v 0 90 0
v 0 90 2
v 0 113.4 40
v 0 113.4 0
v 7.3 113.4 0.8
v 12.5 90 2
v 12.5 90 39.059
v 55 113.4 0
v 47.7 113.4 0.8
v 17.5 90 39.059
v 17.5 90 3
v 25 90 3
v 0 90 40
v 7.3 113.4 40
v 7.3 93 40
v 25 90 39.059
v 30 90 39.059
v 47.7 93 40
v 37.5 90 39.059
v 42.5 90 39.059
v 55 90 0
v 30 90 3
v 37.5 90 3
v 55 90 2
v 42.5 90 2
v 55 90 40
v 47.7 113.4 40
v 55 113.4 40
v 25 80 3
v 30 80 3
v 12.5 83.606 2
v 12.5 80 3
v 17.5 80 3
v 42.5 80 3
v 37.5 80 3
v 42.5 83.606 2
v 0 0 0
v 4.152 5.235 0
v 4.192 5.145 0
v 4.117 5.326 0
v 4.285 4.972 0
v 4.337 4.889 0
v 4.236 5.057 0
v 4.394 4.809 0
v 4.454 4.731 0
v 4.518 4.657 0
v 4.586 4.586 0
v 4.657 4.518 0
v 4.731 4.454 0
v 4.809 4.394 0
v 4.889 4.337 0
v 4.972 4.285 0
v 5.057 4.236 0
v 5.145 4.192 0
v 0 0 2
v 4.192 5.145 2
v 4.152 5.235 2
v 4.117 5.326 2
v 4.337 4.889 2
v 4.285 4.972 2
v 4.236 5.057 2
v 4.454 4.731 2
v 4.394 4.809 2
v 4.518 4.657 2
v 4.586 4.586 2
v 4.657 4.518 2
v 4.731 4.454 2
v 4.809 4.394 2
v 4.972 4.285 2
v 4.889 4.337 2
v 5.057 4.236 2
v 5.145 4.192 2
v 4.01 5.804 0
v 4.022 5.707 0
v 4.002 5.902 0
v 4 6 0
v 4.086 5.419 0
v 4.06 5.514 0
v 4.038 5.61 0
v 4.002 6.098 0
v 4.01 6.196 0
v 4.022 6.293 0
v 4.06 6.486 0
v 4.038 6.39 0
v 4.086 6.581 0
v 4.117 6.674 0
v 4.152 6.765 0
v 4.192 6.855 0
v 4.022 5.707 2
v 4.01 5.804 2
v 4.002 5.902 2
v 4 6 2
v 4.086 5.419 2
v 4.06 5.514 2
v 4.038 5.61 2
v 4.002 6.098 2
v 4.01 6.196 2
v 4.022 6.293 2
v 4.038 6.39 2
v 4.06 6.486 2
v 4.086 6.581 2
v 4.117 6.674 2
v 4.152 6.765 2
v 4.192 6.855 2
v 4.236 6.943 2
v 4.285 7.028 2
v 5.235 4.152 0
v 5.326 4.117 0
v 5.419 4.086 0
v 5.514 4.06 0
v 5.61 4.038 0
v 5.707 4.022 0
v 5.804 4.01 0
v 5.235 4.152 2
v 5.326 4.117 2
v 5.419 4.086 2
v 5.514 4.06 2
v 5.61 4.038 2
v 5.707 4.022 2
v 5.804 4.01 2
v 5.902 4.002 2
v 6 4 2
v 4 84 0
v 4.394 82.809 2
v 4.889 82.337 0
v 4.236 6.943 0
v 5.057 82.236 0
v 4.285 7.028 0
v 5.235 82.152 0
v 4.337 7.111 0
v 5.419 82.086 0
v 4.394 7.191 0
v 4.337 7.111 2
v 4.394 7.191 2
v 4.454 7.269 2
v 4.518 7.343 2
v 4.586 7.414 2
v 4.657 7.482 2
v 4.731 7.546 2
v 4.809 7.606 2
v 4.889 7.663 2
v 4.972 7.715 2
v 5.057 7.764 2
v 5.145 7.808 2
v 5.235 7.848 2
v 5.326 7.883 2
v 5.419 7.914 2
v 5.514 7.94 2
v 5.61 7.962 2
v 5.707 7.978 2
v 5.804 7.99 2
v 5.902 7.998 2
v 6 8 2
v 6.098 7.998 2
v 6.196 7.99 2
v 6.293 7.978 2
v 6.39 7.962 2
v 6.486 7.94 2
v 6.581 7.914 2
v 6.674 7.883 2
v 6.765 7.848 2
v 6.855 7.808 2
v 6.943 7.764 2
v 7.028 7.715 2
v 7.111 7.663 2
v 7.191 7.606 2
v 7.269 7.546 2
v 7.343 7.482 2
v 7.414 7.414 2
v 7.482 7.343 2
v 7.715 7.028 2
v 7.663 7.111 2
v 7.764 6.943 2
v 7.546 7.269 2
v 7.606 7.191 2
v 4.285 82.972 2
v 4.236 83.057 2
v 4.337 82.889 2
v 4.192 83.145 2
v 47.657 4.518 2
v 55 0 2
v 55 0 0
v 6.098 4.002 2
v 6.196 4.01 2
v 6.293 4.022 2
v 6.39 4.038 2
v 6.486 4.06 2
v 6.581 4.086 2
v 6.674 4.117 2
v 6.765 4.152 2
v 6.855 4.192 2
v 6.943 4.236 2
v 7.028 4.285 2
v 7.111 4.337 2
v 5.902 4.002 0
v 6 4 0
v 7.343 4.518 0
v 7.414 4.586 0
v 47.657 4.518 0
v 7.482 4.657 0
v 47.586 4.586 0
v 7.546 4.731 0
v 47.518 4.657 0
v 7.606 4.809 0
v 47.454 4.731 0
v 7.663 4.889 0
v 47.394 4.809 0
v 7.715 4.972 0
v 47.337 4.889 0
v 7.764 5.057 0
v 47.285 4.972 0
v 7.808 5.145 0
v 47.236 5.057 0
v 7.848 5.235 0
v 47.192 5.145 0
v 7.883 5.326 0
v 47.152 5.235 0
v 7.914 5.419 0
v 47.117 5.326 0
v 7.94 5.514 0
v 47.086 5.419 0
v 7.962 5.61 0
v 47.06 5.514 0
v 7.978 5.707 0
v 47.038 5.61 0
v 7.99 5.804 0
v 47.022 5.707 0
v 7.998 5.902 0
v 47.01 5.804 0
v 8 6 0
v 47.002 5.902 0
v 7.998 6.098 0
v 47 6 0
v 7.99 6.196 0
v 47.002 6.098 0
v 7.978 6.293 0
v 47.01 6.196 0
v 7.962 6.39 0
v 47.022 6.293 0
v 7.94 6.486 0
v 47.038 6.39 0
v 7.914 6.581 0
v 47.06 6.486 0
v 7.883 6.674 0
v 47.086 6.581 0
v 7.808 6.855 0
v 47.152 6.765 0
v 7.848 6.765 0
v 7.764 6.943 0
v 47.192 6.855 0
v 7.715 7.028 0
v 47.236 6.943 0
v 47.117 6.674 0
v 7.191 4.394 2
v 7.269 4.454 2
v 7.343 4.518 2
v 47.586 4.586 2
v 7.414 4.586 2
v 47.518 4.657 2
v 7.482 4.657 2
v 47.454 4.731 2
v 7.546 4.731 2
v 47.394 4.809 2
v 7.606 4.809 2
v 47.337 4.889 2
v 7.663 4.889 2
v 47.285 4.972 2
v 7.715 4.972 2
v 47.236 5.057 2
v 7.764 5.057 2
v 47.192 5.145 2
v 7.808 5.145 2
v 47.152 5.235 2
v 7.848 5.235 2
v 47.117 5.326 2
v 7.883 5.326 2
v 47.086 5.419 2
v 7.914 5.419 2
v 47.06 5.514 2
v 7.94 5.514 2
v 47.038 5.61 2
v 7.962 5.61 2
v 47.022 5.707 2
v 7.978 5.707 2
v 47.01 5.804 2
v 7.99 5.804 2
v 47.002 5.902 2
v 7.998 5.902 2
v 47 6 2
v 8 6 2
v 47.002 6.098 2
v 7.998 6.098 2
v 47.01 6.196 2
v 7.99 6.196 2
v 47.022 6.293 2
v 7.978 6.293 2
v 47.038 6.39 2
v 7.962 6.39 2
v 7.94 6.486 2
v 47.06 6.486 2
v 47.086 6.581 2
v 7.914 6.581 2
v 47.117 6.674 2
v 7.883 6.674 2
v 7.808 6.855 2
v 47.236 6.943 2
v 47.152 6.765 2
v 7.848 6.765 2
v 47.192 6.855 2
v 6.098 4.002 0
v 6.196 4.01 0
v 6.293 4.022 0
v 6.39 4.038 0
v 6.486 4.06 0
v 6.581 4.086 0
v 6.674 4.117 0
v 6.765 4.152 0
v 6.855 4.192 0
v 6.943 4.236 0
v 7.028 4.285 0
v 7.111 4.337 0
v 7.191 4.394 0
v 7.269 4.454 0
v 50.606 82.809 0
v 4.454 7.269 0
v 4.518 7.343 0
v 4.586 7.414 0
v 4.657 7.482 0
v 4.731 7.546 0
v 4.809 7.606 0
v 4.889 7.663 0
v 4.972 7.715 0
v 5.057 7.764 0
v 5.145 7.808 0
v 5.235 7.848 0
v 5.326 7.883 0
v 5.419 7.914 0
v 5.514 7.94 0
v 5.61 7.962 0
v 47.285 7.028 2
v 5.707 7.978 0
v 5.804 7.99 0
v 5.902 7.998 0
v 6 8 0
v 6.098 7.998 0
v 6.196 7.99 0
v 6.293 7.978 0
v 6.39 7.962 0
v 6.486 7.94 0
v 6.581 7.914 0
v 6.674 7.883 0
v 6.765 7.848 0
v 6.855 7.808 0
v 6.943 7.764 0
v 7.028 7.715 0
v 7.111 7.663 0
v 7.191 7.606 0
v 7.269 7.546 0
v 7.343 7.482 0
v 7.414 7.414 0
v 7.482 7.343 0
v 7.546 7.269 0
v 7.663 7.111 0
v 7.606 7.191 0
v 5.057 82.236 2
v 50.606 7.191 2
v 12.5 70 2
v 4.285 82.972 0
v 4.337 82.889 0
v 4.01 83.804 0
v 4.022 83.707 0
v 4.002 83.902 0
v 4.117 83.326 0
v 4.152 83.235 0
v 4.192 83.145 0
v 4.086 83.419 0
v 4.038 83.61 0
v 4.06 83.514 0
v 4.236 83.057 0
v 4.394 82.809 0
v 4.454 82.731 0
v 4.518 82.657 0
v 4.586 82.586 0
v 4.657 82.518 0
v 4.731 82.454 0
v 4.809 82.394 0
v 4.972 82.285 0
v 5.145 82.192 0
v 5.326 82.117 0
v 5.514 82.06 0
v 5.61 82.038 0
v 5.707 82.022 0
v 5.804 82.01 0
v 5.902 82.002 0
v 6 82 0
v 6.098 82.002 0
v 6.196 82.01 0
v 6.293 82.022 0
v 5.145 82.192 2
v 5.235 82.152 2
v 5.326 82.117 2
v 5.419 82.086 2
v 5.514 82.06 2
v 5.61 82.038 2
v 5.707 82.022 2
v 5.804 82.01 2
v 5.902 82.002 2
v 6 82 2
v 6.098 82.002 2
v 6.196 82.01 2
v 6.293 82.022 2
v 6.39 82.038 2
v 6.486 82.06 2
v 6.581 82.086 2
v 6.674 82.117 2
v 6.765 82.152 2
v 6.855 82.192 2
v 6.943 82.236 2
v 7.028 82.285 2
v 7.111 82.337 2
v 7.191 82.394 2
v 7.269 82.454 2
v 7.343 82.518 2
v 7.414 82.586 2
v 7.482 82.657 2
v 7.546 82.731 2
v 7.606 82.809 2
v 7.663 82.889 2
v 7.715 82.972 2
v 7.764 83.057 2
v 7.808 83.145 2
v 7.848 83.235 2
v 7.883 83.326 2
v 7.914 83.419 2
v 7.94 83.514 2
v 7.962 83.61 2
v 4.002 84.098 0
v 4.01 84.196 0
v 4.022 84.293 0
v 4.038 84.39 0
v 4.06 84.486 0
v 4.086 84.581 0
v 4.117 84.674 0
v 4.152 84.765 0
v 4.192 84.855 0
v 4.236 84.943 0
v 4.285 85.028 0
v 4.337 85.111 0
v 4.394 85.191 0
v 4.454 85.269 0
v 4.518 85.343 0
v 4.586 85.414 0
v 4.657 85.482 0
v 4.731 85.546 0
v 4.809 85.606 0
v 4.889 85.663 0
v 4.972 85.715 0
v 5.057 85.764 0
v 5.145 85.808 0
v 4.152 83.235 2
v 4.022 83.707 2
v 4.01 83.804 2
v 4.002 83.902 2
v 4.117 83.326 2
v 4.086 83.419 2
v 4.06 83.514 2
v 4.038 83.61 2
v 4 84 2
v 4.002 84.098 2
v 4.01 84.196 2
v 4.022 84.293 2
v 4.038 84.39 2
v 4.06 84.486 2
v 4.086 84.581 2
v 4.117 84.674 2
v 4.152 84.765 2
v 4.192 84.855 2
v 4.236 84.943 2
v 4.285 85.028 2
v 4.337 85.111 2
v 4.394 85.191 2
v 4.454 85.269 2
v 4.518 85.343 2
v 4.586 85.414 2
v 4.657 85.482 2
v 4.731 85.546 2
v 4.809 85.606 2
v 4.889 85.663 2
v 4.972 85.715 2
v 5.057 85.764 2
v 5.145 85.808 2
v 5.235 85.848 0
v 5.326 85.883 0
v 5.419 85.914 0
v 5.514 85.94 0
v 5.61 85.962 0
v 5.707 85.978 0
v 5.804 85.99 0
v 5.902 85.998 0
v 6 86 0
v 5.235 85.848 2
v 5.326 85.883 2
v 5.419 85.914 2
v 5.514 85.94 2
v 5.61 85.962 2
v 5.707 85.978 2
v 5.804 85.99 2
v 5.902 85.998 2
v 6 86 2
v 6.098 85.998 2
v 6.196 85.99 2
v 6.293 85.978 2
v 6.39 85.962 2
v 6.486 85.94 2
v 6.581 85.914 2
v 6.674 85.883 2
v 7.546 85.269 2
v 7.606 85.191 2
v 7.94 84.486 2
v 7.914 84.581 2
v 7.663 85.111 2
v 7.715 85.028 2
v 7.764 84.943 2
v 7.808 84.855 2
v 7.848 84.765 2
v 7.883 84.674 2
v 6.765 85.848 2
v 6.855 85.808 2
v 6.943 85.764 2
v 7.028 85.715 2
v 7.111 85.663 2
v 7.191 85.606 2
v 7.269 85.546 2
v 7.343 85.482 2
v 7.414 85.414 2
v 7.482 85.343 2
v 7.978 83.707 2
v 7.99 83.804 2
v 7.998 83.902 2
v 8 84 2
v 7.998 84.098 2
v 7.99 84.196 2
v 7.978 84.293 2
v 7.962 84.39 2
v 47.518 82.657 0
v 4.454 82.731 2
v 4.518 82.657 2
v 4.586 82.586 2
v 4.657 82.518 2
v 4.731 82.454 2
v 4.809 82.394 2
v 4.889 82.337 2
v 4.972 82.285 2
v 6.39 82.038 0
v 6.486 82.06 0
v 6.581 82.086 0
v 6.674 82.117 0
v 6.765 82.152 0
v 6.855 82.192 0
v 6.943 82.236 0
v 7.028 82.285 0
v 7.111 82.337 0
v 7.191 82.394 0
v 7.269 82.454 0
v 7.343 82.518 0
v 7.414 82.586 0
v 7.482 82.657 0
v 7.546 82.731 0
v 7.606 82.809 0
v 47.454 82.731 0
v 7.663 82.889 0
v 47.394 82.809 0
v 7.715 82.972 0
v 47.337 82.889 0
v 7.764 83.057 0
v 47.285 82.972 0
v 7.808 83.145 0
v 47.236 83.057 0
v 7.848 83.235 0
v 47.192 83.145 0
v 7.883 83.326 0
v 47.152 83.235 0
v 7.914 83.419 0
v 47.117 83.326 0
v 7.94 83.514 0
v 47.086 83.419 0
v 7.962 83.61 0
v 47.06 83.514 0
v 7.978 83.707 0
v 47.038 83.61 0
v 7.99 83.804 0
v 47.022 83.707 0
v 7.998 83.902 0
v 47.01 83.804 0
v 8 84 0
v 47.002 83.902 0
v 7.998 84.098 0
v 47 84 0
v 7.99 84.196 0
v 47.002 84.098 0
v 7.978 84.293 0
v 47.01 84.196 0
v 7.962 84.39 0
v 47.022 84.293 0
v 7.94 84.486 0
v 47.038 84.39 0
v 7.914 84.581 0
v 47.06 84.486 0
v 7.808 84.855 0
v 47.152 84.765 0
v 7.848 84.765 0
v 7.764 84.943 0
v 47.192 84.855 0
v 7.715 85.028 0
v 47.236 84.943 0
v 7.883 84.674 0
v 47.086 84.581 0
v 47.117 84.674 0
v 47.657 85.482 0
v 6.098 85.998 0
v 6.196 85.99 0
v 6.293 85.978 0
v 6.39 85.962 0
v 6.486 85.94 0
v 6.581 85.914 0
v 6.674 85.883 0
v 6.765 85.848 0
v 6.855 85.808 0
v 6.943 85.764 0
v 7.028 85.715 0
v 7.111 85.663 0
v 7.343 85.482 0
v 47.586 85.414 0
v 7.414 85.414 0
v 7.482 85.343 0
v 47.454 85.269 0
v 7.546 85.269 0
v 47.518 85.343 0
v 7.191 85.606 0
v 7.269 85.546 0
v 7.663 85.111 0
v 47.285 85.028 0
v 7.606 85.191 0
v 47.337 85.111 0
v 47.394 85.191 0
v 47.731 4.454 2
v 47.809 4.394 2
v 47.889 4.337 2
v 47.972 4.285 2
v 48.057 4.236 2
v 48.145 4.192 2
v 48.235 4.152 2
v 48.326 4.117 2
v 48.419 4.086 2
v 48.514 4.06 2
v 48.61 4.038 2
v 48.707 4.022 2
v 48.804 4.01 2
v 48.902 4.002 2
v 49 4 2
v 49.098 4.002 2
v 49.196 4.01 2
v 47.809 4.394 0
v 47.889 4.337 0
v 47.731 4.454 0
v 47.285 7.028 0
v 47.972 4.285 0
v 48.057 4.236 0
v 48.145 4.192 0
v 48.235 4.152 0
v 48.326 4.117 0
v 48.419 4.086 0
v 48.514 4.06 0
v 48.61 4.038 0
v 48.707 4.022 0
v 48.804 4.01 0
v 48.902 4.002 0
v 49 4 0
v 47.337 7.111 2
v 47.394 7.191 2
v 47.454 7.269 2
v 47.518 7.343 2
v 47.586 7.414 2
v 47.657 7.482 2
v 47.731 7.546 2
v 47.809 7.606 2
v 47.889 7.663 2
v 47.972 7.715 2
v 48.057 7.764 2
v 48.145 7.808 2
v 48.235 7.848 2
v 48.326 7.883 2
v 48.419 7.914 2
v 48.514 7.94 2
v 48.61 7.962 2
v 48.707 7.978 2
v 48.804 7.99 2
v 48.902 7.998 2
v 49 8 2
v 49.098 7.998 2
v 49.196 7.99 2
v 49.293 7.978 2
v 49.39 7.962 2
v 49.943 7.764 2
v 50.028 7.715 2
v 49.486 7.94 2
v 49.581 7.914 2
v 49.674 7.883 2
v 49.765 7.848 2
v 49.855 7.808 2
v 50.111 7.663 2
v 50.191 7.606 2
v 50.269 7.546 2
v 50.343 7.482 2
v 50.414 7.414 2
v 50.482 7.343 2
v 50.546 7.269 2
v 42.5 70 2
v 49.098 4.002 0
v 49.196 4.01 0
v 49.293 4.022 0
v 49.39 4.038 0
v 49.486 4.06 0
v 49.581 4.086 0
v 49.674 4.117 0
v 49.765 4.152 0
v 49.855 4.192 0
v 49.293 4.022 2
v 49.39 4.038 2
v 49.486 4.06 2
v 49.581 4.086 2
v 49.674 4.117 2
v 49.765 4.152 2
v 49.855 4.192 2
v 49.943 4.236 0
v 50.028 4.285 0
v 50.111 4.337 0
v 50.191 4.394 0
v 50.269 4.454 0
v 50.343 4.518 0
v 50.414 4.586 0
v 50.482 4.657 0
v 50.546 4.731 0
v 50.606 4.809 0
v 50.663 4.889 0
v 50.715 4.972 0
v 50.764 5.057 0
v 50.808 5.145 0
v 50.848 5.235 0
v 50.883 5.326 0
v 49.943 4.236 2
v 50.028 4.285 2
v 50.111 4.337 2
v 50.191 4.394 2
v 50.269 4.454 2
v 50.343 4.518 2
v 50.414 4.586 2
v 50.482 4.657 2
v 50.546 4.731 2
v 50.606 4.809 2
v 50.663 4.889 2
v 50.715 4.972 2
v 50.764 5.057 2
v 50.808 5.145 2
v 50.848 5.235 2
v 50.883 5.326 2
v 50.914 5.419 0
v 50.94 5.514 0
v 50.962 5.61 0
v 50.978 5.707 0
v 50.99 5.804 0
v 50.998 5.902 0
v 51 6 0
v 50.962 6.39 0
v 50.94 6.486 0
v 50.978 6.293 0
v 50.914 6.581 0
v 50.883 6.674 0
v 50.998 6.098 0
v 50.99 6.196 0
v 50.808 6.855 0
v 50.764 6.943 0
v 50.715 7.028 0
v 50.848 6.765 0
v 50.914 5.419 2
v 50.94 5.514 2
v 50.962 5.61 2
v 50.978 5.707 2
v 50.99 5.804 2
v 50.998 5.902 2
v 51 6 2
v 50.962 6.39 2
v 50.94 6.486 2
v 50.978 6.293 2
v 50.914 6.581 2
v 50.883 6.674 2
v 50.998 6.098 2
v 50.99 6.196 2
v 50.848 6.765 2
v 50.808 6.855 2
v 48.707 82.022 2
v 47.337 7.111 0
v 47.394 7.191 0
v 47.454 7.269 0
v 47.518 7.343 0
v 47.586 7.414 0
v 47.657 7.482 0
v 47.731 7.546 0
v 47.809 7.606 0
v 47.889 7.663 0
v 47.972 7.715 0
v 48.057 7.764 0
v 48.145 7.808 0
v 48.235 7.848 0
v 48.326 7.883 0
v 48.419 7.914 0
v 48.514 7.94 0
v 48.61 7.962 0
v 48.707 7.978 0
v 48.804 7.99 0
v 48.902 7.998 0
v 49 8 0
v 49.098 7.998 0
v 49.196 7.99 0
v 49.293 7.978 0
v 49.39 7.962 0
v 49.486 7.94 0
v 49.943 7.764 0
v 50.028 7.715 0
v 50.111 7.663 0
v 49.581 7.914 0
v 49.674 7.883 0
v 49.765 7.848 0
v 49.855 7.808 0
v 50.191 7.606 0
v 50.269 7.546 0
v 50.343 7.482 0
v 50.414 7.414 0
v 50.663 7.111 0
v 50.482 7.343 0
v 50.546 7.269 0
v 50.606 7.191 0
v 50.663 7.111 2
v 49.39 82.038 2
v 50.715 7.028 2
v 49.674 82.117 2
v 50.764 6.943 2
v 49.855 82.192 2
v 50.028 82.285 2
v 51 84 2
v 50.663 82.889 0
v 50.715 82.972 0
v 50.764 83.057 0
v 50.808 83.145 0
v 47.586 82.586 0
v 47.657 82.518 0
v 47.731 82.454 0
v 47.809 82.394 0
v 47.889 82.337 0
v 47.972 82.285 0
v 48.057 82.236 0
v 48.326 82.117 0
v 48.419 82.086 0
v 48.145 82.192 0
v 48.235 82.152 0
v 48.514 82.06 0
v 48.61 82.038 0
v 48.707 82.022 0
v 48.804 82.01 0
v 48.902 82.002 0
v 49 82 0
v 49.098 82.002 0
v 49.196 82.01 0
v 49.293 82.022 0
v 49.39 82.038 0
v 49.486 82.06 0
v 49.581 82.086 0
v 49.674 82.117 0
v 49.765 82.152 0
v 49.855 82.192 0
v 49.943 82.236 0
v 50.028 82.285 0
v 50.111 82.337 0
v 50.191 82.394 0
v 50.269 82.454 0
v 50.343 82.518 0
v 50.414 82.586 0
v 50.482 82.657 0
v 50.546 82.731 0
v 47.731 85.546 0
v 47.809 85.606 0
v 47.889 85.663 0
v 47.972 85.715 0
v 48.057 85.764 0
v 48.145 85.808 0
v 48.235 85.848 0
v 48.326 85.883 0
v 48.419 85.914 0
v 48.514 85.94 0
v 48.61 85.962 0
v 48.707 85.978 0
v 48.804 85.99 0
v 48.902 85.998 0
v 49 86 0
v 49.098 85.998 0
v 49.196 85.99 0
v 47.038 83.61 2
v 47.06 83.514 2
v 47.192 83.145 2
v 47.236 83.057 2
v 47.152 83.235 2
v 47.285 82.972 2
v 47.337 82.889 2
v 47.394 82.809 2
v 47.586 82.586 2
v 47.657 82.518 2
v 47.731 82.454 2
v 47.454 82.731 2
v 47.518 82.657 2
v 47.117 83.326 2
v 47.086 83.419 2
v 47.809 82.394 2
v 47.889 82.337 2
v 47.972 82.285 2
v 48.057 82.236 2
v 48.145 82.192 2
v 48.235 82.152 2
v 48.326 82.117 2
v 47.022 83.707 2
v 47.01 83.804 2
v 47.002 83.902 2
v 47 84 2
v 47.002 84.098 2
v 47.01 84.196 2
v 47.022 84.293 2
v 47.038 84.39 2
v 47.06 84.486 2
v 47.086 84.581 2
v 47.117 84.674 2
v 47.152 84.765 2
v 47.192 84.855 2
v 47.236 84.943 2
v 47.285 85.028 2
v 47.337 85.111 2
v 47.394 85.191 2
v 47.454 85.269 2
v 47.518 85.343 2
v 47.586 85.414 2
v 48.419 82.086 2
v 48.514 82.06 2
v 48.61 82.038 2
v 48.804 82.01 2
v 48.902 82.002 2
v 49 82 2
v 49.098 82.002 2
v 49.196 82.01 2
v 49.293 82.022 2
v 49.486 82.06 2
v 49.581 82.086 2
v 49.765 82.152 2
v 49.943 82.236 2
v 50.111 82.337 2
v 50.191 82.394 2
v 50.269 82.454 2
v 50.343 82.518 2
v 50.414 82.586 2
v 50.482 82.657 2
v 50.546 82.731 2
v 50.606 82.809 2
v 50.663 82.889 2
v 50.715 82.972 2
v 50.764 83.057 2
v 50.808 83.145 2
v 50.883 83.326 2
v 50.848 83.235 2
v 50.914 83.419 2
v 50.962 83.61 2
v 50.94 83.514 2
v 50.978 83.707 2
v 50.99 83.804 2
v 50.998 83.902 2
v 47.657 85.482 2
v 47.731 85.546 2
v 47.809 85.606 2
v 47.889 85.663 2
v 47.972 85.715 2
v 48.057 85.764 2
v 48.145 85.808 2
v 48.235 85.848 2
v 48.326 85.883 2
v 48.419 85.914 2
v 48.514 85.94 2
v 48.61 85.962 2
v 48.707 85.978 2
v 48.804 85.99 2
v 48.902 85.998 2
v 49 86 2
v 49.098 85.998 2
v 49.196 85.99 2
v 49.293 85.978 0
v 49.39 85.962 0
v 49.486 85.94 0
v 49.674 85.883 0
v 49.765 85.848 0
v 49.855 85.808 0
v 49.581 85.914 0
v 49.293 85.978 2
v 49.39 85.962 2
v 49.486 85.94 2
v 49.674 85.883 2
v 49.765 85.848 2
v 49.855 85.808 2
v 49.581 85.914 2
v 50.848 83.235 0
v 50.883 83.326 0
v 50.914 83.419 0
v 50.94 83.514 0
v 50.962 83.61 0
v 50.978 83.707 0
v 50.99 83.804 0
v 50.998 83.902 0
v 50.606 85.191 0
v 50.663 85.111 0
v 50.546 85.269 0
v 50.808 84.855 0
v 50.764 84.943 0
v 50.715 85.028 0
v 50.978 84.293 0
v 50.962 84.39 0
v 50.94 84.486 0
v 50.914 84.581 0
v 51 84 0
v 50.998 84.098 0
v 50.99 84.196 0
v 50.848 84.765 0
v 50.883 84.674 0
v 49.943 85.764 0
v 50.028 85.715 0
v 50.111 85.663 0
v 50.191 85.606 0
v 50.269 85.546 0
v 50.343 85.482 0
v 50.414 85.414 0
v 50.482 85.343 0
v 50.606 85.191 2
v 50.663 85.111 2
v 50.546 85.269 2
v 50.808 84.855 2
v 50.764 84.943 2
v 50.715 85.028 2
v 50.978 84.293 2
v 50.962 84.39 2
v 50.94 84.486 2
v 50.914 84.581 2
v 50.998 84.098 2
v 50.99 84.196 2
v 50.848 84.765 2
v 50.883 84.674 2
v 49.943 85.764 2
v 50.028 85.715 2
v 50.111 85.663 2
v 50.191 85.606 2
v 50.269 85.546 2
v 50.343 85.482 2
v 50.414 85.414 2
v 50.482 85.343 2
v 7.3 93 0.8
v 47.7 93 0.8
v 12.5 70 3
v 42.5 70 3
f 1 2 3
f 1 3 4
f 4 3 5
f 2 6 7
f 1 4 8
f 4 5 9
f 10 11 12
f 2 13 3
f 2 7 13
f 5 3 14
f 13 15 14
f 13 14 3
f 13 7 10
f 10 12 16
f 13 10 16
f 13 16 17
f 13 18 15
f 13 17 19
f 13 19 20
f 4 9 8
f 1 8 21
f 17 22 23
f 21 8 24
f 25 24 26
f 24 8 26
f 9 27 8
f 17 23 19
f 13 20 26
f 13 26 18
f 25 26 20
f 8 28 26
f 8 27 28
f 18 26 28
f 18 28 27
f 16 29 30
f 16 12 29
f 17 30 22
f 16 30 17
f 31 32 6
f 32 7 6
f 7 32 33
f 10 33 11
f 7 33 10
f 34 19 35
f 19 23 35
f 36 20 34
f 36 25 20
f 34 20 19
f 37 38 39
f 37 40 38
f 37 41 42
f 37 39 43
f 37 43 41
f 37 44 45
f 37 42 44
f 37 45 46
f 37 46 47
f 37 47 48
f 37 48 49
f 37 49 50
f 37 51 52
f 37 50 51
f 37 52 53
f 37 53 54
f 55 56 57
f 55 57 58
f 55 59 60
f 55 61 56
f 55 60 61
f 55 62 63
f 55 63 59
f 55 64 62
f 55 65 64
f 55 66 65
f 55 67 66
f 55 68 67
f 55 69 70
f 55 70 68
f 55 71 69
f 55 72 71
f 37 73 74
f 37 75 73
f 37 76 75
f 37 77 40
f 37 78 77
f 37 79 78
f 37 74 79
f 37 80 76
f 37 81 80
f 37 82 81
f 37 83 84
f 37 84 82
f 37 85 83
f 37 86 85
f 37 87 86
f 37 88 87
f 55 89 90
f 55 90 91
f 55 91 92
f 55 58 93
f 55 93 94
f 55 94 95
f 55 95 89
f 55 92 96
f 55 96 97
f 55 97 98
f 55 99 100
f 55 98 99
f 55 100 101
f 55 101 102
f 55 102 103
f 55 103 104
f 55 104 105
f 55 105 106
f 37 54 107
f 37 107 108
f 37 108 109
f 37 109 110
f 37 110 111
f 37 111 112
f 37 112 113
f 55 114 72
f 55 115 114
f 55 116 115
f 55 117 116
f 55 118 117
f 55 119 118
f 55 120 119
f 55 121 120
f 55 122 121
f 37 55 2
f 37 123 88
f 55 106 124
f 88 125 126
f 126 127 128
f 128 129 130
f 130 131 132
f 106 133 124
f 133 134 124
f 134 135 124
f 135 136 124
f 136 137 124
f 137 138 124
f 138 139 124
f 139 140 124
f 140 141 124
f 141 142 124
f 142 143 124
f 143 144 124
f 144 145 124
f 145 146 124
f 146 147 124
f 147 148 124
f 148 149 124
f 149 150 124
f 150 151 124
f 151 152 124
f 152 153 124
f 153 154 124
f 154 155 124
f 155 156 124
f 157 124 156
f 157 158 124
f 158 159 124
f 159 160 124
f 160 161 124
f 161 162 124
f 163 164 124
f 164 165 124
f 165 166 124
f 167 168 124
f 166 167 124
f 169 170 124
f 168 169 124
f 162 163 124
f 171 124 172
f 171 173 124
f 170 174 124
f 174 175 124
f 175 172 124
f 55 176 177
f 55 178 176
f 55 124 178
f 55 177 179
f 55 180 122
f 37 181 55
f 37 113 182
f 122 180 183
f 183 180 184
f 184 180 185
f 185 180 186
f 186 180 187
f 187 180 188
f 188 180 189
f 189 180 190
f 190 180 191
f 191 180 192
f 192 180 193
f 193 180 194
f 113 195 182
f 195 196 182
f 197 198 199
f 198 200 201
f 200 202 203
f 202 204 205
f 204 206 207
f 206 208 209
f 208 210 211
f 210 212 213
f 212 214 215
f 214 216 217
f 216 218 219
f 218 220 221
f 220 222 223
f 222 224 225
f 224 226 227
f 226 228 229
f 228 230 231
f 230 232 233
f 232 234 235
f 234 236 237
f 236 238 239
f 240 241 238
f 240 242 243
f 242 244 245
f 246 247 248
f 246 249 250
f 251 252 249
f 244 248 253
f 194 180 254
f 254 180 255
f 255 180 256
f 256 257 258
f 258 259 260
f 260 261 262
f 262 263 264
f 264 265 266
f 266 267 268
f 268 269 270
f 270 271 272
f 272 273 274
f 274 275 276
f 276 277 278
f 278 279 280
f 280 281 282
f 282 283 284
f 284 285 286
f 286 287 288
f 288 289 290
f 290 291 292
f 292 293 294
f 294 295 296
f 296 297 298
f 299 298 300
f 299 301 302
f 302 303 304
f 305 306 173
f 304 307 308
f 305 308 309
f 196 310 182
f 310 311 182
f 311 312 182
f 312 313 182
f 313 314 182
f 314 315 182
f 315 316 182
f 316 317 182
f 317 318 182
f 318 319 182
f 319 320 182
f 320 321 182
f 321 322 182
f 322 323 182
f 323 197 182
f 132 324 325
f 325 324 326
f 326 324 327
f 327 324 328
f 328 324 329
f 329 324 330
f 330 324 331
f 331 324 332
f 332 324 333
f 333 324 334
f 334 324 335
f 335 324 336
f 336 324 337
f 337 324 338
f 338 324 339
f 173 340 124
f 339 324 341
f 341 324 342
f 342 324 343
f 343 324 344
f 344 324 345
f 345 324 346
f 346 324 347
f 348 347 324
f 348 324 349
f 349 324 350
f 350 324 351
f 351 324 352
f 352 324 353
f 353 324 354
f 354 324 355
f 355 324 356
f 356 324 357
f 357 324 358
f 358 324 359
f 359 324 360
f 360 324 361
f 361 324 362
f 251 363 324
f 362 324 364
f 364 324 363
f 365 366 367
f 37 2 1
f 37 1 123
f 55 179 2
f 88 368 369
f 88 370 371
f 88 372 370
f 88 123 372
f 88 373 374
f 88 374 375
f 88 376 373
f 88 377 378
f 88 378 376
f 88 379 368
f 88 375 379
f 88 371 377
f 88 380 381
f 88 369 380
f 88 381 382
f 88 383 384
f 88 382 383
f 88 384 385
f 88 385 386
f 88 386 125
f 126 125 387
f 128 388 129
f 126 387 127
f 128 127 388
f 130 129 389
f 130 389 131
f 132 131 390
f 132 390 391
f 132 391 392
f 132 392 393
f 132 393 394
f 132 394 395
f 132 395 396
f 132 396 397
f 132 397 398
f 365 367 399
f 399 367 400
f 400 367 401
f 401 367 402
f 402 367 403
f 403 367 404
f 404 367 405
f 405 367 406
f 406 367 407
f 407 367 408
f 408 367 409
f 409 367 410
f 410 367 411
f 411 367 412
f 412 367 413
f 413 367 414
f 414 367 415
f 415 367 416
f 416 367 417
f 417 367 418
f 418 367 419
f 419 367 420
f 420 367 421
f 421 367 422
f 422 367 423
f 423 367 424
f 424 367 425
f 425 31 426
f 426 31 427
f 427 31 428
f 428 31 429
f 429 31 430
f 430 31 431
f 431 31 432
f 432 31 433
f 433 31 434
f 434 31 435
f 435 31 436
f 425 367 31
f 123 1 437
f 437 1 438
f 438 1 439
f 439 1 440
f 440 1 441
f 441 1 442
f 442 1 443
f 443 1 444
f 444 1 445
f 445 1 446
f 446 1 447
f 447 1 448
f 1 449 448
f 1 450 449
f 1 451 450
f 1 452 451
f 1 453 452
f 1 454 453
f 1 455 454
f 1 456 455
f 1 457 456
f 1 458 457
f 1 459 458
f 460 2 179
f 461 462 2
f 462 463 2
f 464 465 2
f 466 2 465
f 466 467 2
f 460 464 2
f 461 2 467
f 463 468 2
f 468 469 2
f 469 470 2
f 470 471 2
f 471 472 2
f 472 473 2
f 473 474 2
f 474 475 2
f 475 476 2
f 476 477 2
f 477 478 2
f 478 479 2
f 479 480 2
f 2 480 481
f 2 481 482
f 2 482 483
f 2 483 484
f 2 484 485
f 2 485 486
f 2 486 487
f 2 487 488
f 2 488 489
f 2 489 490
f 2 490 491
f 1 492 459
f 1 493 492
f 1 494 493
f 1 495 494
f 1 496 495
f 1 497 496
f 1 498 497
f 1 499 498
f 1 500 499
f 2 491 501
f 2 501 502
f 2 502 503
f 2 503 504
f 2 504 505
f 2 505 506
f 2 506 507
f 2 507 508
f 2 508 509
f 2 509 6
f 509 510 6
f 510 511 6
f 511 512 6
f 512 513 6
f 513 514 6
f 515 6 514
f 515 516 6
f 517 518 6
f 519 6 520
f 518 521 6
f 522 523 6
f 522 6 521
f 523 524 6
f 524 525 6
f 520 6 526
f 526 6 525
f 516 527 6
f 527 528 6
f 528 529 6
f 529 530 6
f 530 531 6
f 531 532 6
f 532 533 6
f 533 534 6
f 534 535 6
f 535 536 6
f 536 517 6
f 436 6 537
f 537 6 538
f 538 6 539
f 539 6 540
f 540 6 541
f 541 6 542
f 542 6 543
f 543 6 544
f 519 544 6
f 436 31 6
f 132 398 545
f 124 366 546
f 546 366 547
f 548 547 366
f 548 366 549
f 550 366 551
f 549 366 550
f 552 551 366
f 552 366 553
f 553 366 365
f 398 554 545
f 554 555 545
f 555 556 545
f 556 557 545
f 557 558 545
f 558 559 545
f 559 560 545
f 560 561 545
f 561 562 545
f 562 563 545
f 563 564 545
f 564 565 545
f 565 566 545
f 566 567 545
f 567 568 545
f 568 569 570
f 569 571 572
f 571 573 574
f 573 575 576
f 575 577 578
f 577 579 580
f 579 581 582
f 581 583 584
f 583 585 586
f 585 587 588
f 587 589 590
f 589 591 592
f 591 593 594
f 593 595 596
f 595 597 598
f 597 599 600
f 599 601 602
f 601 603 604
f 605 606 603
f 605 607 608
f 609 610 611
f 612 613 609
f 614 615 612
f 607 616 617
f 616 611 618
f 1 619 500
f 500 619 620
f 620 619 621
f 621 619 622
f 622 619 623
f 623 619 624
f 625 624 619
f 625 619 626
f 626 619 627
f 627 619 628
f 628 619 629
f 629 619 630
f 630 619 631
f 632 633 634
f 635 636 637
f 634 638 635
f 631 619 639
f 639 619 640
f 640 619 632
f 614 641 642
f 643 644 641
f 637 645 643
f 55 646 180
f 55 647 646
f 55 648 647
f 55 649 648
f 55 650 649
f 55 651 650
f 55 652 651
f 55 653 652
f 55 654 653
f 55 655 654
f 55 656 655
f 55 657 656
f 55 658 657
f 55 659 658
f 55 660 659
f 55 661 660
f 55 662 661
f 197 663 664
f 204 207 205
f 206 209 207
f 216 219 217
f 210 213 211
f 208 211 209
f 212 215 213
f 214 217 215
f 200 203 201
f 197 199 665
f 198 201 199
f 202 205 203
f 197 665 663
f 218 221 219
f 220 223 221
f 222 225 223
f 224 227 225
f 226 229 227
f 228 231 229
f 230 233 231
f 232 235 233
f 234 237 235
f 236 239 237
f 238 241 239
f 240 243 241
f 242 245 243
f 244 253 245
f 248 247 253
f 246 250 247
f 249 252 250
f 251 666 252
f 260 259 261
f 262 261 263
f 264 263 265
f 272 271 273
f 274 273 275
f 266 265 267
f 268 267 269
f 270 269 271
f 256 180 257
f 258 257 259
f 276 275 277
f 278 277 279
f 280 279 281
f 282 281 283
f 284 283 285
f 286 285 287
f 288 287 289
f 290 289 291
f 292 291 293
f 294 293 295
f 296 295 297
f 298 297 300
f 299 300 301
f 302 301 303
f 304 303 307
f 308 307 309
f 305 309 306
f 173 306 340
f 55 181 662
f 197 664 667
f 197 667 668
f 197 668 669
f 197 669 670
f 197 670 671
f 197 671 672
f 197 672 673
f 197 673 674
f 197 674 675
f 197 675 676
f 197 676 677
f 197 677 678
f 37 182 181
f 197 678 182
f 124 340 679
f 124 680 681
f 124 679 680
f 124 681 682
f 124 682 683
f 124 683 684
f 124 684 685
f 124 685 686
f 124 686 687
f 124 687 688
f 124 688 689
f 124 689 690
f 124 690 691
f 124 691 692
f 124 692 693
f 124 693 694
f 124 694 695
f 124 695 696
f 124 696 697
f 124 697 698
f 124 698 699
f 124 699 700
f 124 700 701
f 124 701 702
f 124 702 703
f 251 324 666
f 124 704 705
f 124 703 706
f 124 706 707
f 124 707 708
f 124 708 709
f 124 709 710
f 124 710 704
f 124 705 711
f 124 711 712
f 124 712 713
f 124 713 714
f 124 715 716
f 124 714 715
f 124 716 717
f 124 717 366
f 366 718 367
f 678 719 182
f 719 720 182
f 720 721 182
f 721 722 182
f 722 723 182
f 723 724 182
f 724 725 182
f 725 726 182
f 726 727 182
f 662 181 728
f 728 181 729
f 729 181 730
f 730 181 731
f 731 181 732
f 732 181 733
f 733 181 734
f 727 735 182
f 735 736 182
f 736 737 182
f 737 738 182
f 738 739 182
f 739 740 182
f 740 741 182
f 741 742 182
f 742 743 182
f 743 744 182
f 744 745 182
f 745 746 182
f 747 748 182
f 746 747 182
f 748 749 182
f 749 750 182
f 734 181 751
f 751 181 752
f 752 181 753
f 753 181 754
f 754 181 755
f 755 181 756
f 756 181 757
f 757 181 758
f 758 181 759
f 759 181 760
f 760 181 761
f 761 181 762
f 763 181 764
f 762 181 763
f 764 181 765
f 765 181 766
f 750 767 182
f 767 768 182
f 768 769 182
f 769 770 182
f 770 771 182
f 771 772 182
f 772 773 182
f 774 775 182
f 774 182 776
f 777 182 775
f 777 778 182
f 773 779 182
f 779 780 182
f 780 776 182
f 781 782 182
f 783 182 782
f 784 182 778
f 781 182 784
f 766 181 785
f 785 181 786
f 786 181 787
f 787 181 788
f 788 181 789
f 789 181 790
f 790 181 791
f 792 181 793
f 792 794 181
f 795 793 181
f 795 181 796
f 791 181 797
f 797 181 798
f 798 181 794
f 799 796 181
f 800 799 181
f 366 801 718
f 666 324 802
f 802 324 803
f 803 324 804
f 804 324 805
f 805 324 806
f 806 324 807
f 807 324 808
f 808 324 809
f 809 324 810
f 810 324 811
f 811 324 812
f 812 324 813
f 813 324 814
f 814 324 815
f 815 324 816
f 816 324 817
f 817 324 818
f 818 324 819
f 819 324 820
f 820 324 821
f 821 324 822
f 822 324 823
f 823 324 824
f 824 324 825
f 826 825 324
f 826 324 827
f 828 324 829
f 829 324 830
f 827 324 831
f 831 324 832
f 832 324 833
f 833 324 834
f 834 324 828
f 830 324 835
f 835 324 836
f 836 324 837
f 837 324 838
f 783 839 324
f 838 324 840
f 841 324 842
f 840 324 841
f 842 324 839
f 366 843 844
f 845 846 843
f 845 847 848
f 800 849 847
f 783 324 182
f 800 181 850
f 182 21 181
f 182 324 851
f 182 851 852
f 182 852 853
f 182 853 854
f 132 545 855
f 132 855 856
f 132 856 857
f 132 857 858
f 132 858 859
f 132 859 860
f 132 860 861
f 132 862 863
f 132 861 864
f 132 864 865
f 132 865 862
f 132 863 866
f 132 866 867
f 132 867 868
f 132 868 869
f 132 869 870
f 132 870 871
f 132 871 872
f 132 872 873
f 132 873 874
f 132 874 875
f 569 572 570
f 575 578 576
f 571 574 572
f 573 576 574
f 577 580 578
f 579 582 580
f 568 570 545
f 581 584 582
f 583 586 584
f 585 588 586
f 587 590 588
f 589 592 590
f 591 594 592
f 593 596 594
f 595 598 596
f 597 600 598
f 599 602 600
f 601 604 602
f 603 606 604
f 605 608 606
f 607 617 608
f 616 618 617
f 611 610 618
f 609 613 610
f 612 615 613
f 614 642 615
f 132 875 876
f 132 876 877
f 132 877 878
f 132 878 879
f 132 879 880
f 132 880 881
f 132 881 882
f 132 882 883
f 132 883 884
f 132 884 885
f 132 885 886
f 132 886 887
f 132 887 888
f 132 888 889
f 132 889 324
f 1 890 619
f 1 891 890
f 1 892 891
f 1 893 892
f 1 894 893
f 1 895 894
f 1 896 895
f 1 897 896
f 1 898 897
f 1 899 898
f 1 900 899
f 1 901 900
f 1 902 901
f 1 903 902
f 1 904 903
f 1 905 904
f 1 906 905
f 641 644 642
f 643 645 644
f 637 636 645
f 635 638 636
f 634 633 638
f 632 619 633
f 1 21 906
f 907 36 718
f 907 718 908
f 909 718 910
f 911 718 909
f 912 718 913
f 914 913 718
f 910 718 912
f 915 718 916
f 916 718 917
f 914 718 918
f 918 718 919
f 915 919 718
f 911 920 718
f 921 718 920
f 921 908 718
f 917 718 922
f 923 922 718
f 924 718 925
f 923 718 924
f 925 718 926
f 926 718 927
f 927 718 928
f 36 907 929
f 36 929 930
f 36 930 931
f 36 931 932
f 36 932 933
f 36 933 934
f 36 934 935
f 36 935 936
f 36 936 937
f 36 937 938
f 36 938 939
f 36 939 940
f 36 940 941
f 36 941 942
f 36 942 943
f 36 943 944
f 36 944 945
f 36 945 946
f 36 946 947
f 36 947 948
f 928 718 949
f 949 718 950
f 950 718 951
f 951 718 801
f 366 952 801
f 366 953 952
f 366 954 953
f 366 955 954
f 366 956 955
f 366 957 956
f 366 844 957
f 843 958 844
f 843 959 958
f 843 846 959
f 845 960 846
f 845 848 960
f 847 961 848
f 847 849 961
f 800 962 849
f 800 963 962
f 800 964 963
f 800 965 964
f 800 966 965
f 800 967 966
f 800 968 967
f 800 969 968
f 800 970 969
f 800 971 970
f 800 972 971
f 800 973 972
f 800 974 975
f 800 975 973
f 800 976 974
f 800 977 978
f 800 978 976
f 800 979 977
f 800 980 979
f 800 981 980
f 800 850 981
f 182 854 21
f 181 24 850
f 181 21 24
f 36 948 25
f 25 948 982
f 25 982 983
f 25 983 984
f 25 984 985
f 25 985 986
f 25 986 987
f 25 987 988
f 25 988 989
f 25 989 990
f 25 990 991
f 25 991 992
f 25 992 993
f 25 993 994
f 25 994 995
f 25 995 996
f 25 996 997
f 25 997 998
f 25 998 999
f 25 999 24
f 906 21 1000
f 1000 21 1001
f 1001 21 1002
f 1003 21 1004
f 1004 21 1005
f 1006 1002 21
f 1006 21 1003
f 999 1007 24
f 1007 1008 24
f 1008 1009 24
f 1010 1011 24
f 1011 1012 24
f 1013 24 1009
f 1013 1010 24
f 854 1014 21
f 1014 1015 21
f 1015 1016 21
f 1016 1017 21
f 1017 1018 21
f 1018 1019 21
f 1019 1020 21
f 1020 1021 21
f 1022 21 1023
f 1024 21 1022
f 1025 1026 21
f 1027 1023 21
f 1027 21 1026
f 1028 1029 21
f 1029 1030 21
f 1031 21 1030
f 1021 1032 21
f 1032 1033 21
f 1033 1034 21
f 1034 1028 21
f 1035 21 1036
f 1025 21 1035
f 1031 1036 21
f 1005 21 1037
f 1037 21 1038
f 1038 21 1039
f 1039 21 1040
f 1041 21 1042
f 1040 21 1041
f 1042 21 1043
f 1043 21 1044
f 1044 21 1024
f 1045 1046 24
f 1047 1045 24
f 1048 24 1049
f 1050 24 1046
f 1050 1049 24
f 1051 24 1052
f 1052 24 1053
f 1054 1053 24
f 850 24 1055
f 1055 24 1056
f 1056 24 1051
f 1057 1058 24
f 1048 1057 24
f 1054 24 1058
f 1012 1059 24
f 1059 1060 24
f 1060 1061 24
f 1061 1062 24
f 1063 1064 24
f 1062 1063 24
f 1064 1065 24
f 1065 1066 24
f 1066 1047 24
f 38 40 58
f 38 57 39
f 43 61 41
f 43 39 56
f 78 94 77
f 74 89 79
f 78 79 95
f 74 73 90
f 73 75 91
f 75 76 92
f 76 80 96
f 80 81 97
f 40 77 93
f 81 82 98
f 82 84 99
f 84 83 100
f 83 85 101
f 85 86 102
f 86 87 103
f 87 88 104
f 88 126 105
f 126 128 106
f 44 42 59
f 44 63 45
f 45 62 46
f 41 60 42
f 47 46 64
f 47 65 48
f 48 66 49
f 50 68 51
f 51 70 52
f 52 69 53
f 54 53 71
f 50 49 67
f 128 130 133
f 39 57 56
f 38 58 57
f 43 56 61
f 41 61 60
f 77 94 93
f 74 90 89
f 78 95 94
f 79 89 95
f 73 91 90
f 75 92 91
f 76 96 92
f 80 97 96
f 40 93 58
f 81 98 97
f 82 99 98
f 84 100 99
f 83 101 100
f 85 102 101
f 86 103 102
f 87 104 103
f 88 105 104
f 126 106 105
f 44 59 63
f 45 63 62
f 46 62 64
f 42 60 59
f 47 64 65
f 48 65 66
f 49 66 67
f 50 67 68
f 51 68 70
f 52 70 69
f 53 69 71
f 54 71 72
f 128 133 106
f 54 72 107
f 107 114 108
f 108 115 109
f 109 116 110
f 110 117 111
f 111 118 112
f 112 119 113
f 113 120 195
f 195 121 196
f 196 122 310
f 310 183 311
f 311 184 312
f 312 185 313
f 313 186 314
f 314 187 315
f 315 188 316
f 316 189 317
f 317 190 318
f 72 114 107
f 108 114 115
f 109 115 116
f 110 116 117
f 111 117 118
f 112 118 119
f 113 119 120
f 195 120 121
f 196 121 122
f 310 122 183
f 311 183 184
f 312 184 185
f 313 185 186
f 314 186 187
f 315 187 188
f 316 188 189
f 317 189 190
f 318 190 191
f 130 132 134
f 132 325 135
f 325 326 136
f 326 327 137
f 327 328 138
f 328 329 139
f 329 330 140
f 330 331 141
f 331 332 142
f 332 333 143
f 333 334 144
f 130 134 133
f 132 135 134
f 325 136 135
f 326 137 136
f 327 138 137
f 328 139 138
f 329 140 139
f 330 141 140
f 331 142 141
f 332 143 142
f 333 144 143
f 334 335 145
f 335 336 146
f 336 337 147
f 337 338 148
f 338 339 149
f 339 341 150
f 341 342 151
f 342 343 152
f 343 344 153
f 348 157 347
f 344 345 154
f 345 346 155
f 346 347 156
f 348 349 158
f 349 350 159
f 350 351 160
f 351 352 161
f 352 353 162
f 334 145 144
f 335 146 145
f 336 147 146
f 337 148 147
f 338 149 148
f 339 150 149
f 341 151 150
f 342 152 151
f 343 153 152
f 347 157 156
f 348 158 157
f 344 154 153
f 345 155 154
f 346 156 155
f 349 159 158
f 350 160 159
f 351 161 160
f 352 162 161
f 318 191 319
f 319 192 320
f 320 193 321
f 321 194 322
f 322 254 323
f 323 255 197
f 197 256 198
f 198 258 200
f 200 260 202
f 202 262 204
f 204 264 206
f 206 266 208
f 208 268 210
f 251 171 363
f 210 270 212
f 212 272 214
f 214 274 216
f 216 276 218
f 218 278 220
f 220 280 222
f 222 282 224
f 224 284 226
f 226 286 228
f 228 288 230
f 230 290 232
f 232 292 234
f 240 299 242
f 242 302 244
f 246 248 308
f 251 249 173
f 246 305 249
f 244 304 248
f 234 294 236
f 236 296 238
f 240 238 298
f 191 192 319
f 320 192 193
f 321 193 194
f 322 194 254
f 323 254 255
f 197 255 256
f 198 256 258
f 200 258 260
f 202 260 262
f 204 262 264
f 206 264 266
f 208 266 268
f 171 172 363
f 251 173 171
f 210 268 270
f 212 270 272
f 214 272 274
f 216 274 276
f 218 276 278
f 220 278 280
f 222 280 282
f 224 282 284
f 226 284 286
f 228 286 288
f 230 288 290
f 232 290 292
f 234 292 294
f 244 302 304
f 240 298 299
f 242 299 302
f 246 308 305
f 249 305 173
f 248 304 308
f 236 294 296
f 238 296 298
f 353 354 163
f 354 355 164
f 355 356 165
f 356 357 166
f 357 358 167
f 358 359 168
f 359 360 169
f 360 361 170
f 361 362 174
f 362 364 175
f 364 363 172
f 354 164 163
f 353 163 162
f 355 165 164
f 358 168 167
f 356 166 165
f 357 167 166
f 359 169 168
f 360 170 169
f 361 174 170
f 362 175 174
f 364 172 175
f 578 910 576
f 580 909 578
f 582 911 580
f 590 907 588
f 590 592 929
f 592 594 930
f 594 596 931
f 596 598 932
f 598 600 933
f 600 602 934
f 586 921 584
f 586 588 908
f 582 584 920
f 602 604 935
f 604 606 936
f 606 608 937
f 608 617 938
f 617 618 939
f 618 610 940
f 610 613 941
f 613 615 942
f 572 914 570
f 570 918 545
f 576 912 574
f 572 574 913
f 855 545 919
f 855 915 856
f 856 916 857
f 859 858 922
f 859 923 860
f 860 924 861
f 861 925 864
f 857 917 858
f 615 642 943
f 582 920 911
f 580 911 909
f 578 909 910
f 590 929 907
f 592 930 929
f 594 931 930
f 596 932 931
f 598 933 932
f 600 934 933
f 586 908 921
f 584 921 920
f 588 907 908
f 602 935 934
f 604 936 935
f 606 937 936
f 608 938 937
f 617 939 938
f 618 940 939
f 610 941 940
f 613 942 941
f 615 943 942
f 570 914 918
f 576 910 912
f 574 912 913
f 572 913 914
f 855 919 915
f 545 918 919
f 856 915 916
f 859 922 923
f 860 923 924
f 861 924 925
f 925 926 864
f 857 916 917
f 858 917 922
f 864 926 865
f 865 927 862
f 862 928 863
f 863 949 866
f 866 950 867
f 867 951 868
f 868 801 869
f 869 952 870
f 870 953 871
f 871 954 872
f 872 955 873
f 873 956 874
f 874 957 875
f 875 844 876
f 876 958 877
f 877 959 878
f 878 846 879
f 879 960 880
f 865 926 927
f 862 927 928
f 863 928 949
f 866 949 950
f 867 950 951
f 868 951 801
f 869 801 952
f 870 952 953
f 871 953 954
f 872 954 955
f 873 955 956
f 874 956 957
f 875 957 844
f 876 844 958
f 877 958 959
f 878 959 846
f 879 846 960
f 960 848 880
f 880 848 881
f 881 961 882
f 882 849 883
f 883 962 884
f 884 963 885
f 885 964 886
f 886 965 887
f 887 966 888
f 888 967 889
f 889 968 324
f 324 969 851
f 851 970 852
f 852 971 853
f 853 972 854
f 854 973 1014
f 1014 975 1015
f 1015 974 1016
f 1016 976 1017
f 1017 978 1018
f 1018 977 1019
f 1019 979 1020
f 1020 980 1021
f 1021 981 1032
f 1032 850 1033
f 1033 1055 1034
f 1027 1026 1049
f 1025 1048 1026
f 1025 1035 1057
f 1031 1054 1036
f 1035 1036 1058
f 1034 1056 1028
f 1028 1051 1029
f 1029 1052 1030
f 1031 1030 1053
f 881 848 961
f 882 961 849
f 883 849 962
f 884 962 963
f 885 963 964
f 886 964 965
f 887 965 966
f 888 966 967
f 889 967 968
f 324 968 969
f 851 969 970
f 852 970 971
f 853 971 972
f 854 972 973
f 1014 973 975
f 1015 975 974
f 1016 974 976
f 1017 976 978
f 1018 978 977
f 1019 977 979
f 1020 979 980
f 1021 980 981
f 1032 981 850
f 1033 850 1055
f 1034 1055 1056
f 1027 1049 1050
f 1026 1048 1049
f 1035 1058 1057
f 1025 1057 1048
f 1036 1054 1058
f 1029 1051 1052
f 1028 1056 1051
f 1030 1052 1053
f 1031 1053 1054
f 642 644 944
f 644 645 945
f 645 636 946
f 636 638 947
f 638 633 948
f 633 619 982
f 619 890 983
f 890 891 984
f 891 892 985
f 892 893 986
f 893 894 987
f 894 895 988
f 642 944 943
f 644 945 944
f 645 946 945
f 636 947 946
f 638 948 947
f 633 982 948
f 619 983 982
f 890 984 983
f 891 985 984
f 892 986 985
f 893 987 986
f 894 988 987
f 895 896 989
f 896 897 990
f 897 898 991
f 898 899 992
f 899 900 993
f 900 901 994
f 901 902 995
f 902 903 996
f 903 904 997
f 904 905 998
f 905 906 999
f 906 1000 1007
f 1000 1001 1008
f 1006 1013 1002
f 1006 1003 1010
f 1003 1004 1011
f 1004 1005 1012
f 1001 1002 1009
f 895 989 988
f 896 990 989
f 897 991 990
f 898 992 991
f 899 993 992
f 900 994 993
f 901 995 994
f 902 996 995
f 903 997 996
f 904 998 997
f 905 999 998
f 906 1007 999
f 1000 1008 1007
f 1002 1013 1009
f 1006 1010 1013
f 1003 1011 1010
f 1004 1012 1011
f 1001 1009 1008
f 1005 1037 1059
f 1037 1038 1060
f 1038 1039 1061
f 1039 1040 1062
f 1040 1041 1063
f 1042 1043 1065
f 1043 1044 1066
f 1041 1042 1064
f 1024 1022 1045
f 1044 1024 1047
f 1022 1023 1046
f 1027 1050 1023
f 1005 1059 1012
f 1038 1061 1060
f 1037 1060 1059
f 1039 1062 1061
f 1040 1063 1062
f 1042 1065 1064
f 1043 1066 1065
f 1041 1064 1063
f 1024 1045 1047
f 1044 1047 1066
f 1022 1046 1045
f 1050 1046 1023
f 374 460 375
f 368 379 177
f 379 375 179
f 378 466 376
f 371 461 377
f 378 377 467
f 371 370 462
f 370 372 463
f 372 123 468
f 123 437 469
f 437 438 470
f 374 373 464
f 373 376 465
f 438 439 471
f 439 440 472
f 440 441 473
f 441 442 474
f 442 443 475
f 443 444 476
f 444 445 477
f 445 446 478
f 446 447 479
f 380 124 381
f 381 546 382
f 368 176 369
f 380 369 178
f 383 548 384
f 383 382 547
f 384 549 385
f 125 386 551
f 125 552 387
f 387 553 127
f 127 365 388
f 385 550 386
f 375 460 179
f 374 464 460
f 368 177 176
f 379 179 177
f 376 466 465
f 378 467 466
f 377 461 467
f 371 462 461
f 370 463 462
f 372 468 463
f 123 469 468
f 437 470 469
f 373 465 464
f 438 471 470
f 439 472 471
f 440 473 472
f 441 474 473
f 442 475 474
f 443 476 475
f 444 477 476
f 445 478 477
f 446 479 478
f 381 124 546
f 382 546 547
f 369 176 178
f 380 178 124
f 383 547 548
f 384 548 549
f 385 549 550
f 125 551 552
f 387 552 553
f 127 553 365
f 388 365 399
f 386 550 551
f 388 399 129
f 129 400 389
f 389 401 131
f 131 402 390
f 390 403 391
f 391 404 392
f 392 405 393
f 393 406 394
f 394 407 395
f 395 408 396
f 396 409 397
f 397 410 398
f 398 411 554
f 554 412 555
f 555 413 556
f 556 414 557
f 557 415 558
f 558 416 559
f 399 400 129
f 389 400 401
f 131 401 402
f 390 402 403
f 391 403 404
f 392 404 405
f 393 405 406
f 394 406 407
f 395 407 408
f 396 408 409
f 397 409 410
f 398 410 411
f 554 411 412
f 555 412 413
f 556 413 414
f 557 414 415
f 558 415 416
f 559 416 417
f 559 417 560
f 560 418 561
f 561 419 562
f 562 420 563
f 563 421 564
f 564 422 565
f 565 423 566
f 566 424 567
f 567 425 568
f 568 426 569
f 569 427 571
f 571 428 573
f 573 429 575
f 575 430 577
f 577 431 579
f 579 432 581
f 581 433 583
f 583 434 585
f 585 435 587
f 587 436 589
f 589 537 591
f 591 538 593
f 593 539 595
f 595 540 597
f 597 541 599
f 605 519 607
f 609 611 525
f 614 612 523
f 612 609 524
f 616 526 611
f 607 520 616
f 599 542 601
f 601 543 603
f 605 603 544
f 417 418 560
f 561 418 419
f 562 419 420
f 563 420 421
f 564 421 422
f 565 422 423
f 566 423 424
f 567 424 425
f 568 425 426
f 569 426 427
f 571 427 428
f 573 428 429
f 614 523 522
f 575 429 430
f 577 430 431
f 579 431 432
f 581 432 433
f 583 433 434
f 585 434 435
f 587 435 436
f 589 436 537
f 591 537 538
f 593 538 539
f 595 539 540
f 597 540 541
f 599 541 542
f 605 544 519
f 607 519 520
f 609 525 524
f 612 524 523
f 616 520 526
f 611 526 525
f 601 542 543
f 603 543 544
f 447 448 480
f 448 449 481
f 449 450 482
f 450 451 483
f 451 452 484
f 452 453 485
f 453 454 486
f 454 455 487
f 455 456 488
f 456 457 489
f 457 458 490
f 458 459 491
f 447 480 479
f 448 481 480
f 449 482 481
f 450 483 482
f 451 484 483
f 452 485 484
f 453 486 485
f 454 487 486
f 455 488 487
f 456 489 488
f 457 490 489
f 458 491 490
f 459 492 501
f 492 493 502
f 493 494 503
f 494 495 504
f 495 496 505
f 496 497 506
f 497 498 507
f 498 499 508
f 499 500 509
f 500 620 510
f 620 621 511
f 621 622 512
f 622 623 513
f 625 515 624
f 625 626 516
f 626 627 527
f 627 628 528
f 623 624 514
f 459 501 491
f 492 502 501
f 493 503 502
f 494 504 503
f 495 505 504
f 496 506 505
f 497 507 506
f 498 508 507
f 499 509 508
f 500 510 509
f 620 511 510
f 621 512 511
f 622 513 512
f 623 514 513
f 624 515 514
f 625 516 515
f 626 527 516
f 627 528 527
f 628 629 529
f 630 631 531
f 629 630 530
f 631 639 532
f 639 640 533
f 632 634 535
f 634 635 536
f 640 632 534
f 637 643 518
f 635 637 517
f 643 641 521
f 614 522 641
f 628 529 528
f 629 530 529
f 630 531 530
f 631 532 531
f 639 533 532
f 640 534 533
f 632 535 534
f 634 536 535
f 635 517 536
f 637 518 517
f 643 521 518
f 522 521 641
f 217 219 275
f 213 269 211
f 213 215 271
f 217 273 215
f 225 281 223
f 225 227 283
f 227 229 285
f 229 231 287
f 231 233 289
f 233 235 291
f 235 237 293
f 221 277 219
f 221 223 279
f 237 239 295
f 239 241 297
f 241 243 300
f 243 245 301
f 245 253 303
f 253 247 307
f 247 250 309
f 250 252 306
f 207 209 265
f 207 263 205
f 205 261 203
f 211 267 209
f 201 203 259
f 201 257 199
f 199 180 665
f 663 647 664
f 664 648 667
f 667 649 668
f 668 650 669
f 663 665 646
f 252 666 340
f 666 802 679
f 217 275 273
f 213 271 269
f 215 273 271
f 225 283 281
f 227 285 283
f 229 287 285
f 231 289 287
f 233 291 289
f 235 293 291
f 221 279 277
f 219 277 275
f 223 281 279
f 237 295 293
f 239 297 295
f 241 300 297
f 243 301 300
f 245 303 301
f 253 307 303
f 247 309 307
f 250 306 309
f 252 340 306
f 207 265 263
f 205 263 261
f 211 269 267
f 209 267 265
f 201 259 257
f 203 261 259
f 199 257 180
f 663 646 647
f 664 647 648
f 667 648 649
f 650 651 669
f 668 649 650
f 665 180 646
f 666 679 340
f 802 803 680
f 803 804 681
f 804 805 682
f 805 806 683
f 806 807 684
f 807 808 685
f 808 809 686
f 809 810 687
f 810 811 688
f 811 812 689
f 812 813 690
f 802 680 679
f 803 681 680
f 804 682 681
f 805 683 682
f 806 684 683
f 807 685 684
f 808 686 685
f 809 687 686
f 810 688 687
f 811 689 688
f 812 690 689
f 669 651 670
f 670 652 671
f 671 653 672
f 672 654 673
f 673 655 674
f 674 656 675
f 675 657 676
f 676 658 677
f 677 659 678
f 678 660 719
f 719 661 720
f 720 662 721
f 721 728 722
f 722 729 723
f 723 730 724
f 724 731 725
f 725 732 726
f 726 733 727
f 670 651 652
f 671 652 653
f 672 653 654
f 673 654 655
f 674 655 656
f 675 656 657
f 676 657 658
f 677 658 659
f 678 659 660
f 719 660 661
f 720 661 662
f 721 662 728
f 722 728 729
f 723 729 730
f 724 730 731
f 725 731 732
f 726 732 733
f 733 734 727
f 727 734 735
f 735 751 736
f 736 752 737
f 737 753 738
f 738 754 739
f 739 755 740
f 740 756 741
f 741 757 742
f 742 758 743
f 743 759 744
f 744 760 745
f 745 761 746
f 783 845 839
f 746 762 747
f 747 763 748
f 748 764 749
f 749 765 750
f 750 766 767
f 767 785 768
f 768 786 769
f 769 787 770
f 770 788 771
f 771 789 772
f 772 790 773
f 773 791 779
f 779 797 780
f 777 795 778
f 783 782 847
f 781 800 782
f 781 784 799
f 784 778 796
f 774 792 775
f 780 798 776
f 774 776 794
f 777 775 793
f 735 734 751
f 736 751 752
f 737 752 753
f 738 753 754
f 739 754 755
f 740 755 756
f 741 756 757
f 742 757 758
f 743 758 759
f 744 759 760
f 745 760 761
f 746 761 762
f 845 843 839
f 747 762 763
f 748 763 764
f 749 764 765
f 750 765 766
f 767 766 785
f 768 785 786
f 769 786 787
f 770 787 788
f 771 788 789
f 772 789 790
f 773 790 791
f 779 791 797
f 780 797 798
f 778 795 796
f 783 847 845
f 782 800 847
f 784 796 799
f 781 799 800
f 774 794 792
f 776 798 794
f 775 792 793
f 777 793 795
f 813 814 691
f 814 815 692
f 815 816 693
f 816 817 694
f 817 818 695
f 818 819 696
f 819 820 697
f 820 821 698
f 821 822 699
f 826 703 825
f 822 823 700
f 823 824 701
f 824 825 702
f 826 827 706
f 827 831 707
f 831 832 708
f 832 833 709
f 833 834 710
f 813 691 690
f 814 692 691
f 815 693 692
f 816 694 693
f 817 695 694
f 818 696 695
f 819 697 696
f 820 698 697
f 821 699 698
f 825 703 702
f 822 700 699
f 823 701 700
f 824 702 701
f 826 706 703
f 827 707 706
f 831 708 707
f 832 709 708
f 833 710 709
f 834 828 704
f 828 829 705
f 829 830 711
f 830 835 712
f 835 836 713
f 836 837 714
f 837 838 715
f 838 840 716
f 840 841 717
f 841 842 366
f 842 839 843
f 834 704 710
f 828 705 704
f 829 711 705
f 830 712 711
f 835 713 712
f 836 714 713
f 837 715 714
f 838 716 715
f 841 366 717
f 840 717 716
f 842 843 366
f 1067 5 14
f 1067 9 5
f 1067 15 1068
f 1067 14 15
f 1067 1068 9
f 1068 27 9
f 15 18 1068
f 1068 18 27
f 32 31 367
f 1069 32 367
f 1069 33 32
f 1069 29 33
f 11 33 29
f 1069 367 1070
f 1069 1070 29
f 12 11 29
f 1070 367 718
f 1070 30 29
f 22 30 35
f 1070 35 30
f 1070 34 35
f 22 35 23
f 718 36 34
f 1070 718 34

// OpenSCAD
$fn = 128;
width = 55;
length = 90;
padding = 6;

translate([(width - 30) / 2, length - 20, 0]) cube([30, 20, 3]);

difference() {
  cube([width, length, 2]);

  translate([padding, padding, -1]) cylinder(10, d=4);
  translate([width - padding, length - padding, -1]) cylinder(10, d=4);
  translate([padding, length - padding, -1]) cylinder(10, d=4);
  translate([width - padding, padding, -1]) cylinder(10, d=4);
}

translate([0, length - 10, 0])
  difference() {
    union() {
      translate([0, 10, 0]) cube([55, 23.4, 40]);
      translate([width / 2 - 5 / 2, 0, 3]) rotate([-31 / 2, 0, 0]) cube([5, 10, 38]);
      translate([width / 2 - 30 / 2, 0, 3]) rotate([-31 / 2, 0, 0]) cube([5, 10, 38]);
      translate([width - 30 / 2 - 5 / 2, 0, 3]) rotate([-31 / 2, 0, 0]) cube([5, 10, 38]);
    }

    translate([(55 - 40.4) / 2, 13, 0.8]) cube([40.4, 20.5, 61]);
  }
